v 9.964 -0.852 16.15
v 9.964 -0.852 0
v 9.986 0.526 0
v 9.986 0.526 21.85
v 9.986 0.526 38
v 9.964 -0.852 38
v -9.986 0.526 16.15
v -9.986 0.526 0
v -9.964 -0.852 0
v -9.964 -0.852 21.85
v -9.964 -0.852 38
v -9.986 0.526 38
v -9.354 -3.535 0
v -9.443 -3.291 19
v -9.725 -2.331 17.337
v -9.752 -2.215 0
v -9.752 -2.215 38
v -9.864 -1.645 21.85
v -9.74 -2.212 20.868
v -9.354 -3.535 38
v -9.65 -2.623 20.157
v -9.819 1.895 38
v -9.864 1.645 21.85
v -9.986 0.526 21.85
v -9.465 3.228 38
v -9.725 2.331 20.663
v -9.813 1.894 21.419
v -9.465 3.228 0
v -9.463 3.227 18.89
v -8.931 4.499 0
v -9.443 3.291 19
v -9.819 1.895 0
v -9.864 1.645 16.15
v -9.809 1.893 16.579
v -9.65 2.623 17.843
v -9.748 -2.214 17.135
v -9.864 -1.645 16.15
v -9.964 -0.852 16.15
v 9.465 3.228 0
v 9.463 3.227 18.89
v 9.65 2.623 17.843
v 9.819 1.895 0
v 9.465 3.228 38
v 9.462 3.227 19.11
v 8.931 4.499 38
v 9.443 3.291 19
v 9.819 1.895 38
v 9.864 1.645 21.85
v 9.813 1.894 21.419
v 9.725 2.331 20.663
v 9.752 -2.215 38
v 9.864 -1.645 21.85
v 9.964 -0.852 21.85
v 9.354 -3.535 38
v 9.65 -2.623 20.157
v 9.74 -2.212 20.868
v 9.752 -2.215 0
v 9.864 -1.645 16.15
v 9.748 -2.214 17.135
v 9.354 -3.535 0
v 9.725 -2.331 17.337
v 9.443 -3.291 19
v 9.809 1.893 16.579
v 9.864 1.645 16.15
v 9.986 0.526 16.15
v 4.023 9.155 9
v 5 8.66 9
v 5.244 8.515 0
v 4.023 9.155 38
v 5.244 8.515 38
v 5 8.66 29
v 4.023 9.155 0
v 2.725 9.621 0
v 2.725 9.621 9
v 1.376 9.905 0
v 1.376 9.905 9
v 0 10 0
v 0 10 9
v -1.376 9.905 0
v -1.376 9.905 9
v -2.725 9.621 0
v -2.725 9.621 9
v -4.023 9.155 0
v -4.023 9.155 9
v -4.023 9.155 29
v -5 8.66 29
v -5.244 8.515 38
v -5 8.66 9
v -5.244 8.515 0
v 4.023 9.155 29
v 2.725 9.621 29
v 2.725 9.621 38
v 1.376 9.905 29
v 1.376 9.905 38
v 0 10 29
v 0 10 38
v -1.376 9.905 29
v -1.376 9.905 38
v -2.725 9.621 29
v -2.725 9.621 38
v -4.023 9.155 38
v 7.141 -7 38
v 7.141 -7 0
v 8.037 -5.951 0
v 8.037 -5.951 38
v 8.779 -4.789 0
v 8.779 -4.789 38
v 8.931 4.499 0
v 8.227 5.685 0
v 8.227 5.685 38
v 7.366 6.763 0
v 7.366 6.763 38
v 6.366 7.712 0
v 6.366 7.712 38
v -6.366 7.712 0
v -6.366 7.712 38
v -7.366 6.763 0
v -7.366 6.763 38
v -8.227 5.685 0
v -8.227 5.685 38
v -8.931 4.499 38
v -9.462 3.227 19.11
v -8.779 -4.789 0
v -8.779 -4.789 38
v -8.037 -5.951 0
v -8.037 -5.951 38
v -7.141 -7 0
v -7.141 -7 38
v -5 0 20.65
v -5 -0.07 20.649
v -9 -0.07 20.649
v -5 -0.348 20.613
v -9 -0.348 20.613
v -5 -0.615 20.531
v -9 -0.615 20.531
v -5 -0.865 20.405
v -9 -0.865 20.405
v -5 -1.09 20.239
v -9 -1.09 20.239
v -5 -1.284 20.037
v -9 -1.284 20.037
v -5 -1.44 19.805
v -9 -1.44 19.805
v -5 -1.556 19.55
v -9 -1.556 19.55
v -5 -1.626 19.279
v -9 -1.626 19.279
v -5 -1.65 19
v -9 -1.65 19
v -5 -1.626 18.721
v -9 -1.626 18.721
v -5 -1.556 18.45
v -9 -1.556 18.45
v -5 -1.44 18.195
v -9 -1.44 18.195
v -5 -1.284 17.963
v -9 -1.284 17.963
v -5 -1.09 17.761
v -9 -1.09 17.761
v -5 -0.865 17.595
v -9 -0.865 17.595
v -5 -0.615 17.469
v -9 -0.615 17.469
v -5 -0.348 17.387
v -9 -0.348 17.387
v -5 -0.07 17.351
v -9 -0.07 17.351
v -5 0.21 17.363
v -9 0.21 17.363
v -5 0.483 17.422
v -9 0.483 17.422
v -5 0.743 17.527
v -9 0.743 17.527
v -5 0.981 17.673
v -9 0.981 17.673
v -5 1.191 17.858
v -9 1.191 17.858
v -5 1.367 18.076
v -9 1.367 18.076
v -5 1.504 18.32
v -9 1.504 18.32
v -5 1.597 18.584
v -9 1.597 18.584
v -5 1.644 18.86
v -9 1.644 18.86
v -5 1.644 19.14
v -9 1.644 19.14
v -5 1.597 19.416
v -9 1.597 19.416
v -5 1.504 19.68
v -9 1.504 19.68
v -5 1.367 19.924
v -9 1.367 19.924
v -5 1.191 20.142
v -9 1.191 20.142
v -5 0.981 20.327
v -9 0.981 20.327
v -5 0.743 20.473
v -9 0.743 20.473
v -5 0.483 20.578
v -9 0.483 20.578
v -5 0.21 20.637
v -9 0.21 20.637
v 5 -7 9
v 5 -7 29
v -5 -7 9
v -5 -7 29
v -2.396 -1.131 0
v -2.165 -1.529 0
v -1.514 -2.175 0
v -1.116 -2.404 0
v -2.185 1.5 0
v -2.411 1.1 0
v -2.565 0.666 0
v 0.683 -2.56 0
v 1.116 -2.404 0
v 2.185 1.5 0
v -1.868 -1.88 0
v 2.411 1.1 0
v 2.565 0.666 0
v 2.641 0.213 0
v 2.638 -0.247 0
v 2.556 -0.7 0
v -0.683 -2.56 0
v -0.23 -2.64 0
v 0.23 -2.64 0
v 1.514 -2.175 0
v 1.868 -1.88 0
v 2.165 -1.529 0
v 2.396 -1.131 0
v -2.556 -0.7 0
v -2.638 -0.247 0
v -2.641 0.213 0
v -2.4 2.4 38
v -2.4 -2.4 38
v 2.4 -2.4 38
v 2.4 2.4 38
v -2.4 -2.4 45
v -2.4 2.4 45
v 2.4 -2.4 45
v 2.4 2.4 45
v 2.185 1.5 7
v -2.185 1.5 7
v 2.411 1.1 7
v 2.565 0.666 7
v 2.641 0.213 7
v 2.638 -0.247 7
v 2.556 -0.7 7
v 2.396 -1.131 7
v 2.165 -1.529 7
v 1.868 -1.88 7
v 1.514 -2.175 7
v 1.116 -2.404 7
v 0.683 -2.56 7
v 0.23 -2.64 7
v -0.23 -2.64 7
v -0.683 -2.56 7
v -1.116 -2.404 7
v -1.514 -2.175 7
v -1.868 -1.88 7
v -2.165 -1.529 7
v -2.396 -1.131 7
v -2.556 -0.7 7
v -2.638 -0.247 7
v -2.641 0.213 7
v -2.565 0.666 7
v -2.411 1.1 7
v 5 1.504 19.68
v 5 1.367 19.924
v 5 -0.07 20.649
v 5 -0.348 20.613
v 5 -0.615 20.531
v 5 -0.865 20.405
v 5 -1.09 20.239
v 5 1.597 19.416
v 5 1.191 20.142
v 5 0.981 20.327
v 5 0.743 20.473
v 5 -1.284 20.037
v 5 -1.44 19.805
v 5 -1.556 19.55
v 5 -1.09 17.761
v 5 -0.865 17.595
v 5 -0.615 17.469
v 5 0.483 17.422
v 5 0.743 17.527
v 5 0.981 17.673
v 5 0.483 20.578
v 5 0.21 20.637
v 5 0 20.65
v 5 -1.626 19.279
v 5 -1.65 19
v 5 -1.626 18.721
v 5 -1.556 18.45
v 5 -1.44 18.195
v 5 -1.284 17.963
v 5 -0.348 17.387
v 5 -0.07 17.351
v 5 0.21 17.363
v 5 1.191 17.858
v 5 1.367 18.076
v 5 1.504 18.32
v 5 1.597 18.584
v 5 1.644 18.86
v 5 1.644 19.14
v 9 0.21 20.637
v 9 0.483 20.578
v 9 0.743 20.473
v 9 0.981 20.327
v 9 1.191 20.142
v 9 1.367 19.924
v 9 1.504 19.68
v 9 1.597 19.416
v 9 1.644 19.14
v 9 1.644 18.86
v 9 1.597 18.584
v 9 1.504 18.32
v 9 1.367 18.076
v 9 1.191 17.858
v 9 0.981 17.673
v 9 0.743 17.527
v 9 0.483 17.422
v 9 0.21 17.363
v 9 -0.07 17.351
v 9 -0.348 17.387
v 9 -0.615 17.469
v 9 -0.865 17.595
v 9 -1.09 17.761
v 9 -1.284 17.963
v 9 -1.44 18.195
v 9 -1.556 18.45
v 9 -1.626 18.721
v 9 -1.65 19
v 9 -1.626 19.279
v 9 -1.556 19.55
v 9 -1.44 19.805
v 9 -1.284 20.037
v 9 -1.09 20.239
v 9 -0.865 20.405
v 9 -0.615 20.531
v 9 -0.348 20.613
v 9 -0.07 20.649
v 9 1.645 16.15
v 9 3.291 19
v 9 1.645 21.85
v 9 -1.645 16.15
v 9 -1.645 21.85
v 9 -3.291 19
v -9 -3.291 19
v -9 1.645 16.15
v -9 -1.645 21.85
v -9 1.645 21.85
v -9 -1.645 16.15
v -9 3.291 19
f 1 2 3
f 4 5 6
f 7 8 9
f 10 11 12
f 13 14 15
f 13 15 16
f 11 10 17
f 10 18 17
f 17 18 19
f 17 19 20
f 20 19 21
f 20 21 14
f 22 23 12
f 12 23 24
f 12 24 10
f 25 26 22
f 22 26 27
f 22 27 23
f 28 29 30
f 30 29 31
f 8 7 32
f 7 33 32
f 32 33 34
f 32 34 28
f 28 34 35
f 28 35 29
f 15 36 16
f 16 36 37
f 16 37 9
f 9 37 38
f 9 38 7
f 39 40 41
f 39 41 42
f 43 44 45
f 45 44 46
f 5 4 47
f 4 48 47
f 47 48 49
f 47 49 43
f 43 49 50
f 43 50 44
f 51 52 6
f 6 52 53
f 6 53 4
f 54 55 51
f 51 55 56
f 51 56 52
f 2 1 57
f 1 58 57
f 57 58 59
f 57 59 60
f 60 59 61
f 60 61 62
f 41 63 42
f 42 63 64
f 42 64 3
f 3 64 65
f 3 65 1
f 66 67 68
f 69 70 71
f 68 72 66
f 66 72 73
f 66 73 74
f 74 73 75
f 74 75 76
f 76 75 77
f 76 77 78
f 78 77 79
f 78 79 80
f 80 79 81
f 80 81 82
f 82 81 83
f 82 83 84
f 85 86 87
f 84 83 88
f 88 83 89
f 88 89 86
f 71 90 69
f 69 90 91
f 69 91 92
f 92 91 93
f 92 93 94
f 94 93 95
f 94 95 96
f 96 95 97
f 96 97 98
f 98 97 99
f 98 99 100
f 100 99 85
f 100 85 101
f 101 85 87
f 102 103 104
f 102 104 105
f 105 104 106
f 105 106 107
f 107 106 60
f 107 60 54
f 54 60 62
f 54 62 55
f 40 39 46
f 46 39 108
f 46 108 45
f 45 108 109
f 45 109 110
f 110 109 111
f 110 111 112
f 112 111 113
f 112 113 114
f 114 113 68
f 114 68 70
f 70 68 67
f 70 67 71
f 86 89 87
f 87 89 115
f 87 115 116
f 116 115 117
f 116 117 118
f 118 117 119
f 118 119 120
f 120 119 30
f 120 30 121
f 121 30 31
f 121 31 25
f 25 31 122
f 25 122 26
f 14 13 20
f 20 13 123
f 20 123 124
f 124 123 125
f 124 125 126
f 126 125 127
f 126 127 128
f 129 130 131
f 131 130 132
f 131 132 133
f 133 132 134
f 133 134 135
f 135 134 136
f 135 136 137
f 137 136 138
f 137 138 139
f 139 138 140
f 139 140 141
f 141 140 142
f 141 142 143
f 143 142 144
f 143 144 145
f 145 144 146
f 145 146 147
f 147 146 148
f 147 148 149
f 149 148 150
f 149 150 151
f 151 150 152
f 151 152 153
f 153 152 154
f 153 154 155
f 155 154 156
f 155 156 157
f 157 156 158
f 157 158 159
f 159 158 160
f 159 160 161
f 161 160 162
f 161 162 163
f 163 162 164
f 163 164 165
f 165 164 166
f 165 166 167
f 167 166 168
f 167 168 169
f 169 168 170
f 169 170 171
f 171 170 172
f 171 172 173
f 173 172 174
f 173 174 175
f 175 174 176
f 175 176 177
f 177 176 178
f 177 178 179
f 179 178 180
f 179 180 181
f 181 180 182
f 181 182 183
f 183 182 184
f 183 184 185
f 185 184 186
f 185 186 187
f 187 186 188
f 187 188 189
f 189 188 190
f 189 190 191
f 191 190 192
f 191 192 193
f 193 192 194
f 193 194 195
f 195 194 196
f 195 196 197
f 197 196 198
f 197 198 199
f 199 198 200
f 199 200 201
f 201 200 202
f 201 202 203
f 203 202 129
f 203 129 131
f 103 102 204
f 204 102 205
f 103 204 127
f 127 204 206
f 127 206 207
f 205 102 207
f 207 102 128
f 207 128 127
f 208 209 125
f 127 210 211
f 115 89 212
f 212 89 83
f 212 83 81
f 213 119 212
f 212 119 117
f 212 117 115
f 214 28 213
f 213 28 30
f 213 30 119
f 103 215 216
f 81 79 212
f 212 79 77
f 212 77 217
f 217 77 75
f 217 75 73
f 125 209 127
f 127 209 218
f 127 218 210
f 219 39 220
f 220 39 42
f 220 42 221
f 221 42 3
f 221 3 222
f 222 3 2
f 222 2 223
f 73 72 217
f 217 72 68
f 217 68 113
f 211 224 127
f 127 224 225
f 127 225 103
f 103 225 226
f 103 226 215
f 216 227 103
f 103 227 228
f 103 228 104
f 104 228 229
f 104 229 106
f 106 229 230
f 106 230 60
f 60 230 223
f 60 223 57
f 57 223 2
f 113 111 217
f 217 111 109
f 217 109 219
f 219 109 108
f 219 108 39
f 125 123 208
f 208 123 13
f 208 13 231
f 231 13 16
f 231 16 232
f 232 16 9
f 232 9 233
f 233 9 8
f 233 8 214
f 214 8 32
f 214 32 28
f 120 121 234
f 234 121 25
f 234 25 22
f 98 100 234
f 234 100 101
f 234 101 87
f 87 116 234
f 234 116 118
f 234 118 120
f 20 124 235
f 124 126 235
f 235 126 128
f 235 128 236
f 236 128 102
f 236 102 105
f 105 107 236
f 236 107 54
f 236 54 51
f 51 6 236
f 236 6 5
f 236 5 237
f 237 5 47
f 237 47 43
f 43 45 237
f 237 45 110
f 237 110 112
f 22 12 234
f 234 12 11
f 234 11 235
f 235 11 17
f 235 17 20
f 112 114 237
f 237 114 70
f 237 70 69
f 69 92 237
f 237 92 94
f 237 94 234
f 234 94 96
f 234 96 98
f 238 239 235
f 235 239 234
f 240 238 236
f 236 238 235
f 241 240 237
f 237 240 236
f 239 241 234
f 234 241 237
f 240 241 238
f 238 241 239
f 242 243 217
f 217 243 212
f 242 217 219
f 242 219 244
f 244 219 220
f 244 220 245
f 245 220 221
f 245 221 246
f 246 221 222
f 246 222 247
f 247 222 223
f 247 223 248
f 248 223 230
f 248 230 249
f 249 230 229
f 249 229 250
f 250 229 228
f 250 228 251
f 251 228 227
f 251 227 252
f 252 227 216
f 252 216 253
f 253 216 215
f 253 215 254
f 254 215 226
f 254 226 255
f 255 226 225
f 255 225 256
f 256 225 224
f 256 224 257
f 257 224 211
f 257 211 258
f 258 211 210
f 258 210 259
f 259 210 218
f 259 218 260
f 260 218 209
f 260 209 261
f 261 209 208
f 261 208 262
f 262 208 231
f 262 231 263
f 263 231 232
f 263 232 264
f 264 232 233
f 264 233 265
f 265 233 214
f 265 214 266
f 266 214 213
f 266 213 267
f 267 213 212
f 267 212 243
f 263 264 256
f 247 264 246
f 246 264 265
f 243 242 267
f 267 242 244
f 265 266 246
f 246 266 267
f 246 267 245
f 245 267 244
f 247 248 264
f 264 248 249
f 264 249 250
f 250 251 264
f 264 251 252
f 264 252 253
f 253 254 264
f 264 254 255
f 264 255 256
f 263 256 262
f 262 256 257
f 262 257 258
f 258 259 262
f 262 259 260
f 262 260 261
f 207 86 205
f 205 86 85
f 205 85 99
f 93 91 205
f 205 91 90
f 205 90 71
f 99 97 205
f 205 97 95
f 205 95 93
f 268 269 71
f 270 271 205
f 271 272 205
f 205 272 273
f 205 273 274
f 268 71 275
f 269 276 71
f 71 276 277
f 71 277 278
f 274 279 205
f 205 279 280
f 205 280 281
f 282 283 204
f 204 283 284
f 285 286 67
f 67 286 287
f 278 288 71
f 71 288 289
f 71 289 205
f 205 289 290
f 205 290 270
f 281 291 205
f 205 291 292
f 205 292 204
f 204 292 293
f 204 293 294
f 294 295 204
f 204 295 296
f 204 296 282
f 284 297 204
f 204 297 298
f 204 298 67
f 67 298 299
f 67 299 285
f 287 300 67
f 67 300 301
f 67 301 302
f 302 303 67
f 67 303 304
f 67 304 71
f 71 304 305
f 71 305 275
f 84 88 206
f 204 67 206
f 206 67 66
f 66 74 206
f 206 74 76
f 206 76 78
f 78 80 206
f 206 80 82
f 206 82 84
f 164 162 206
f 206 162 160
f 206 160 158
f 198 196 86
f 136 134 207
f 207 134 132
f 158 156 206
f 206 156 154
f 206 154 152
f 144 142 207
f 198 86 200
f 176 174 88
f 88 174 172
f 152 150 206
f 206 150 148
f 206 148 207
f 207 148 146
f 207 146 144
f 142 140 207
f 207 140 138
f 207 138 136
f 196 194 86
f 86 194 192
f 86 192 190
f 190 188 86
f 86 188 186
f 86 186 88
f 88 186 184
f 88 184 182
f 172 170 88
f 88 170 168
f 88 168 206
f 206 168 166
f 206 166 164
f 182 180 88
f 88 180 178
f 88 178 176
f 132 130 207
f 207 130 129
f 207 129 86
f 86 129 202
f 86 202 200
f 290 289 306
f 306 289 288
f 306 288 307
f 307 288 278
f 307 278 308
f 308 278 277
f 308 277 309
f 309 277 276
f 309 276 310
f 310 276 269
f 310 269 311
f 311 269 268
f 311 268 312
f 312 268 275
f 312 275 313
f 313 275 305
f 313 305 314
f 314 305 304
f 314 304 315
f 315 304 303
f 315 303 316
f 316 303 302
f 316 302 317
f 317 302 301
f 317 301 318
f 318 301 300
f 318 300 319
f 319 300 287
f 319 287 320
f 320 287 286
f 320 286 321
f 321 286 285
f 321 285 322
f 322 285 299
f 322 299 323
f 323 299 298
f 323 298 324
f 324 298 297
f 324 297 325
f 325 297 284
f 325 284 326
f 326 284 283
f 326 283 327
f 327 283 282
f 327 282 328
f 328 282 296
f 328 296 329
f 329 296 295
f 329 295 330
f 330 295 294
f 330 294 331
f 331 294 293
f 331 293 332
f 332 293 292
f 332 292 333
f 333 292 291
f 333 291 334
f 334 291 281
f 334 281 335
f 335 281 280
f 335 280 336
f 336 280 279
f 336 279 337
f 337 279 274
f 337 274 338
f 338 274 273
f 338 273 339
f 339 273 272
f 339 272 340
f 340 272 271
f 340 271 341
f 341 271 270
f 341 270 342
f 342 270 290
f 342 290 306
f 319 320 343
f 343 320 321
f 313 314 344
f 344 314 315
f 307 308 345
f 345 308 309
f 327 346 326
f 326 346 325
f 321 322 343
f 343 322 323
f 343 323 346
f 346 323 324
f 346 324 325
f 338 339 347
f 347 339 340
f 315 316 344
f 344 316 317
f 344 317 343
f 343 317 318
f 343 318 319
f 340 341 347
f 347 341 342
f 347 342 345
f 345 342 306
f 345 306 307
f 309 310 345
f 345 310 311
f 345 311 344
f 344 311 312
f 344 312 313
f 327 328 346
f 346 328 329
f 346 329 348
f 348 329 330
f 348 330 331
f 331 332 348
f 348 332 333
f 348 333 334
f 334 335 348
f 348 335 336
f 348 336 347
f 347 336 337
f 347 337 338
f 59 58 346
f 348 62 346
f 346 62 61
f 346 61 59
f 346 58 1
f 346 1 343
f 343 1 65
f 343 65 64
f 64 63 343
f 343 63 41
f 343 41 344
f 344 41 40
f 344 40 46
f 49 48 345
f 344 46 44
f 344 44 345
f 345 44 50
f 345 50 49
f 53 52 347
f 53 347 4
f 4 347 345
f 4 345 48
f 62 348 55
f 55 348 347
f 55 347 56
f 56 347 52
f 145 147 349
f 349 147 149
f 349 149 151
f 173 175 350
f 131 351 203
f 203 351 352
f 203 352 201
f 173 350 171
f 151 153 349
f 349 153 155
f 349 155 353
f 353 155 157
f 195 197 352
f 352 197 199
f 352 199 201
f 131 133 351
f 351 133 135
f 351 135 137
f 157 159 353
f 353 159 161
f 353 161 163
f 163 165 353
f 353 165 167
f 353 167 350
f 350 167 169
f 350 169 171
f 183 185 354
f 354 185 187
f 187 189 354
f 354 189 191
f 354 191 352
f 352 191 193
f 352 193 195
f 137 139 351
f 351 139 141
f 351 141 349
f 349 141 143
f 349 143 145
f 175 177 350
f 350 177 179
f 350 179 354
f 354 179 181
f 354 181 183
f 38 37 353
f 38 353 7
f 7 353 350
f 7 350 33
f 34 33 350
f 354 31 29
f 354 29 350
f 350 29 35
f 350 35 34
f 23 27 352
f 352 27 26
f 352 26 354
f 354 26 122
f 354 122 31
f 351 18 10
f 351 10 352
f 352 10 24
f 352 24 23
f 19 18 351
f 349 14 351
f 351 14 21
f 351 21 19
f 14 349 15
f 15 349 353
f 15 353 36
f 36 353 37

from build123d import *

# Parameters (mm, degrees)
SKIZZE1_R                            = 10
AUFSATZ_LINEAR_AUSTRAGEN1_DEPTH      = 38
SKIZZE2_W                            = 4.8
SKIZZE2_H                            = 4.8
AUFSATZ_LINEAR_AUSTRAGEN2_DEPTH      = 7
SCHNITT_LINEAR_AUSTRAGEN1_DEPTH      = 7
SKIZZE4_W                            = 20
SKIZZE4_H                            = 7
SCHNITT_LINEAR_AUSTRAGEN3_DEPTH      = 38
SCHNITT_LINEAR_AUSTRAGEN4_REACH      = 19
SKIZZE5_W                            = 10
SKIZZE5_H                            = 20
SKIZZE6_R                            = 1.65
SCHNITT_LINEAR_AUSTRAGEN5_DEPTH      = 16
SCHNITT_LINEAR_AUSTRAGEN5_DEPTH_BACK = 6
SCHNITT_LINEAR_AUSTRAGEN6_REACH      = 11
SCHNITT_LINEAR_START                 = -4
SCHNITT_LINEAR_AUSTRAGEN7_REACH      = 31
SCHNITT_LINEAR_START_2               = 14


with BuildPart() as part:
    # Skizze1 → Aufsatz-Linear austragen1 (new body)
    with BuildSketch(Plane.XY):
        Circle(SKIZZE1_R)
    extrude(amount=AUFSATZ_LINEAR_AUSTRAGEN1_DEPTH)

    # Skizze2 → Aufsatz-Linear austragen2 (add)
    with BuildSketch(Plane.XY.offset(38)):
        Rectangle(SKIZZE2_W, SKIZZE2_H)
    extrude(amount=AUFSATZ_LINEAR_AUSTRAGEN2_DEPTH)

    # Skizze3 → Schnitt-Linear austragen1 (cut)
    with BuildSketch(Plane(origin=(0, 0, 0), x_dir=(-1, 0, 0), z_dir=(0, 0, -1))):
        with BuildLine():
            Line((2.184605227, 1.5), (-2.184605227, 1.5))
            ThreePointArc((-2.184605227, 1.5), (-0.785269427, -2.530978452), (2.65, 0))
            ThreePointArc((2.65, 0), (2.530978452, 0.785269427), (2.184605227, 1.5))
        make_face()
    extrude(amount=-SCHNITT_LINEAR_AUSTRAGEN1_DEPTH, mode=Mode.SUBTRACT)

    # Skizze4 → Schnitt-Linear austragen3 (cut)
    with BuildSketch(Plane(origin=(0, 0, 0), x_dir=(-1, 0, 0), z_dir=(0, 0, -1))):
        with Locations((0, -10.5)):
            Rectangle(SKIZZE4_W, SKIZZE4_H)
    extrude(amount=-SCHNITT_LINEAR_AUSTRAGEN3_DEPTH, mode=Mode.SUBTRACT)

    # Skizze5 → Schnitt-Linear austragen4 (cut, up to next)
    with BuildSketch(Plane.XZ.offset(7), mode=Mode.PRIVATE) as schnitt_linear_austragen4_sk1:
        with Locations((0, 19)):
            Rectangle(SKIZZE5_W, SKIZZE5_H)
    schnitt_linear_austragen4_tool1 = extrude(schnitt_linear_austragen4_sk1.sketch, amount=-SCHNITT_LINEAR_AUSTRAGEN4_REACH, mode=Mode.PRIVATE) & part.part
    add(schnitt_linear_austragen4_tool1.solids().sort_by_distance((0, -7, 19))[0], mode=Mode.SUBTRACT)

    # Skizze6 → Schnitt-Linear austragen5 (cut, two sides)
    with BuildSketch(Plane.ZY.offset(-5)) as schnitt_linear_austragen5_sk:
        with Locations((19, 0)):
            Circle(SKIZZE6_R)
    extrude(amount=SCHNITT_LINEAR_AUSTRAGEN5_DEPTH, mode=Mode.SUBTRACT)
    extrude(schnitt_linear_austragen5_sk.sketch, amount=-SCHNITT_LINEAR_AUSTRAGEN5_DEPTH_BACK, mode=Mode.SUBTRACT)

    # Skizze7 → Schnitt-Linear austragen6 (cut, up to next)
    with BuildSketch(Plane.ZY.offset(-5).offset(SCHNITT_LINEAR_START), mode=Mode.PRIVATE) as schnitt_linear_austragen6_sk1:
        Polygon((19, -3.290896534), (21.85, -1.645448267), (21.85, 1.645448267), (19, 3.290896534), (16.15, 1.645448267), (16.15, -1.645448267), align=None)
    schnitt_linear_austragen6_tool1 = extrude(schnitt_linear_austragen6_sk1.sketch, amount=-SCHNITT_LINEAR_AUSTRAGEN6_REACH, mode=Mode.PRIVATE) & part.part
    add(schnitt_linear_austragen6_tool1.solids().sort_by_distance((9, 0, 19))[0], mode=Mode.SUBTRACT)

    # Skizze7<2> → Schnitt-Linear austragen7 (cut, up to next)
    with BuildSketch(Plane.ZY.offset(-5).offset(SCHNITT_LINEAR_START_2), mode=Mode.PRIVATE) as schnitt_linear_austragen7_sk1:
        Polygon((19, -3.290896534), (21.85, -1.645448267), (21.85, 1.645448267), (19, 3.290896534), (16.15, 1.645448267), (16.15, -1.645448267), align=None)
    schnitt_linear_austragen7_tool1 = extrude(schnitt_linear_austragen7_sk1.sketch, amount=SCHNITT_LINEAR_AUSTRAGEN7_REACH, mode=Mode.PRIVATE) & part.part
    add(schnitt_linear_austragen7_tool1.solids().sort_by_distance((-9, 0, 19))[0], mode=Mode.SUBTRACT)


solid = part.part
